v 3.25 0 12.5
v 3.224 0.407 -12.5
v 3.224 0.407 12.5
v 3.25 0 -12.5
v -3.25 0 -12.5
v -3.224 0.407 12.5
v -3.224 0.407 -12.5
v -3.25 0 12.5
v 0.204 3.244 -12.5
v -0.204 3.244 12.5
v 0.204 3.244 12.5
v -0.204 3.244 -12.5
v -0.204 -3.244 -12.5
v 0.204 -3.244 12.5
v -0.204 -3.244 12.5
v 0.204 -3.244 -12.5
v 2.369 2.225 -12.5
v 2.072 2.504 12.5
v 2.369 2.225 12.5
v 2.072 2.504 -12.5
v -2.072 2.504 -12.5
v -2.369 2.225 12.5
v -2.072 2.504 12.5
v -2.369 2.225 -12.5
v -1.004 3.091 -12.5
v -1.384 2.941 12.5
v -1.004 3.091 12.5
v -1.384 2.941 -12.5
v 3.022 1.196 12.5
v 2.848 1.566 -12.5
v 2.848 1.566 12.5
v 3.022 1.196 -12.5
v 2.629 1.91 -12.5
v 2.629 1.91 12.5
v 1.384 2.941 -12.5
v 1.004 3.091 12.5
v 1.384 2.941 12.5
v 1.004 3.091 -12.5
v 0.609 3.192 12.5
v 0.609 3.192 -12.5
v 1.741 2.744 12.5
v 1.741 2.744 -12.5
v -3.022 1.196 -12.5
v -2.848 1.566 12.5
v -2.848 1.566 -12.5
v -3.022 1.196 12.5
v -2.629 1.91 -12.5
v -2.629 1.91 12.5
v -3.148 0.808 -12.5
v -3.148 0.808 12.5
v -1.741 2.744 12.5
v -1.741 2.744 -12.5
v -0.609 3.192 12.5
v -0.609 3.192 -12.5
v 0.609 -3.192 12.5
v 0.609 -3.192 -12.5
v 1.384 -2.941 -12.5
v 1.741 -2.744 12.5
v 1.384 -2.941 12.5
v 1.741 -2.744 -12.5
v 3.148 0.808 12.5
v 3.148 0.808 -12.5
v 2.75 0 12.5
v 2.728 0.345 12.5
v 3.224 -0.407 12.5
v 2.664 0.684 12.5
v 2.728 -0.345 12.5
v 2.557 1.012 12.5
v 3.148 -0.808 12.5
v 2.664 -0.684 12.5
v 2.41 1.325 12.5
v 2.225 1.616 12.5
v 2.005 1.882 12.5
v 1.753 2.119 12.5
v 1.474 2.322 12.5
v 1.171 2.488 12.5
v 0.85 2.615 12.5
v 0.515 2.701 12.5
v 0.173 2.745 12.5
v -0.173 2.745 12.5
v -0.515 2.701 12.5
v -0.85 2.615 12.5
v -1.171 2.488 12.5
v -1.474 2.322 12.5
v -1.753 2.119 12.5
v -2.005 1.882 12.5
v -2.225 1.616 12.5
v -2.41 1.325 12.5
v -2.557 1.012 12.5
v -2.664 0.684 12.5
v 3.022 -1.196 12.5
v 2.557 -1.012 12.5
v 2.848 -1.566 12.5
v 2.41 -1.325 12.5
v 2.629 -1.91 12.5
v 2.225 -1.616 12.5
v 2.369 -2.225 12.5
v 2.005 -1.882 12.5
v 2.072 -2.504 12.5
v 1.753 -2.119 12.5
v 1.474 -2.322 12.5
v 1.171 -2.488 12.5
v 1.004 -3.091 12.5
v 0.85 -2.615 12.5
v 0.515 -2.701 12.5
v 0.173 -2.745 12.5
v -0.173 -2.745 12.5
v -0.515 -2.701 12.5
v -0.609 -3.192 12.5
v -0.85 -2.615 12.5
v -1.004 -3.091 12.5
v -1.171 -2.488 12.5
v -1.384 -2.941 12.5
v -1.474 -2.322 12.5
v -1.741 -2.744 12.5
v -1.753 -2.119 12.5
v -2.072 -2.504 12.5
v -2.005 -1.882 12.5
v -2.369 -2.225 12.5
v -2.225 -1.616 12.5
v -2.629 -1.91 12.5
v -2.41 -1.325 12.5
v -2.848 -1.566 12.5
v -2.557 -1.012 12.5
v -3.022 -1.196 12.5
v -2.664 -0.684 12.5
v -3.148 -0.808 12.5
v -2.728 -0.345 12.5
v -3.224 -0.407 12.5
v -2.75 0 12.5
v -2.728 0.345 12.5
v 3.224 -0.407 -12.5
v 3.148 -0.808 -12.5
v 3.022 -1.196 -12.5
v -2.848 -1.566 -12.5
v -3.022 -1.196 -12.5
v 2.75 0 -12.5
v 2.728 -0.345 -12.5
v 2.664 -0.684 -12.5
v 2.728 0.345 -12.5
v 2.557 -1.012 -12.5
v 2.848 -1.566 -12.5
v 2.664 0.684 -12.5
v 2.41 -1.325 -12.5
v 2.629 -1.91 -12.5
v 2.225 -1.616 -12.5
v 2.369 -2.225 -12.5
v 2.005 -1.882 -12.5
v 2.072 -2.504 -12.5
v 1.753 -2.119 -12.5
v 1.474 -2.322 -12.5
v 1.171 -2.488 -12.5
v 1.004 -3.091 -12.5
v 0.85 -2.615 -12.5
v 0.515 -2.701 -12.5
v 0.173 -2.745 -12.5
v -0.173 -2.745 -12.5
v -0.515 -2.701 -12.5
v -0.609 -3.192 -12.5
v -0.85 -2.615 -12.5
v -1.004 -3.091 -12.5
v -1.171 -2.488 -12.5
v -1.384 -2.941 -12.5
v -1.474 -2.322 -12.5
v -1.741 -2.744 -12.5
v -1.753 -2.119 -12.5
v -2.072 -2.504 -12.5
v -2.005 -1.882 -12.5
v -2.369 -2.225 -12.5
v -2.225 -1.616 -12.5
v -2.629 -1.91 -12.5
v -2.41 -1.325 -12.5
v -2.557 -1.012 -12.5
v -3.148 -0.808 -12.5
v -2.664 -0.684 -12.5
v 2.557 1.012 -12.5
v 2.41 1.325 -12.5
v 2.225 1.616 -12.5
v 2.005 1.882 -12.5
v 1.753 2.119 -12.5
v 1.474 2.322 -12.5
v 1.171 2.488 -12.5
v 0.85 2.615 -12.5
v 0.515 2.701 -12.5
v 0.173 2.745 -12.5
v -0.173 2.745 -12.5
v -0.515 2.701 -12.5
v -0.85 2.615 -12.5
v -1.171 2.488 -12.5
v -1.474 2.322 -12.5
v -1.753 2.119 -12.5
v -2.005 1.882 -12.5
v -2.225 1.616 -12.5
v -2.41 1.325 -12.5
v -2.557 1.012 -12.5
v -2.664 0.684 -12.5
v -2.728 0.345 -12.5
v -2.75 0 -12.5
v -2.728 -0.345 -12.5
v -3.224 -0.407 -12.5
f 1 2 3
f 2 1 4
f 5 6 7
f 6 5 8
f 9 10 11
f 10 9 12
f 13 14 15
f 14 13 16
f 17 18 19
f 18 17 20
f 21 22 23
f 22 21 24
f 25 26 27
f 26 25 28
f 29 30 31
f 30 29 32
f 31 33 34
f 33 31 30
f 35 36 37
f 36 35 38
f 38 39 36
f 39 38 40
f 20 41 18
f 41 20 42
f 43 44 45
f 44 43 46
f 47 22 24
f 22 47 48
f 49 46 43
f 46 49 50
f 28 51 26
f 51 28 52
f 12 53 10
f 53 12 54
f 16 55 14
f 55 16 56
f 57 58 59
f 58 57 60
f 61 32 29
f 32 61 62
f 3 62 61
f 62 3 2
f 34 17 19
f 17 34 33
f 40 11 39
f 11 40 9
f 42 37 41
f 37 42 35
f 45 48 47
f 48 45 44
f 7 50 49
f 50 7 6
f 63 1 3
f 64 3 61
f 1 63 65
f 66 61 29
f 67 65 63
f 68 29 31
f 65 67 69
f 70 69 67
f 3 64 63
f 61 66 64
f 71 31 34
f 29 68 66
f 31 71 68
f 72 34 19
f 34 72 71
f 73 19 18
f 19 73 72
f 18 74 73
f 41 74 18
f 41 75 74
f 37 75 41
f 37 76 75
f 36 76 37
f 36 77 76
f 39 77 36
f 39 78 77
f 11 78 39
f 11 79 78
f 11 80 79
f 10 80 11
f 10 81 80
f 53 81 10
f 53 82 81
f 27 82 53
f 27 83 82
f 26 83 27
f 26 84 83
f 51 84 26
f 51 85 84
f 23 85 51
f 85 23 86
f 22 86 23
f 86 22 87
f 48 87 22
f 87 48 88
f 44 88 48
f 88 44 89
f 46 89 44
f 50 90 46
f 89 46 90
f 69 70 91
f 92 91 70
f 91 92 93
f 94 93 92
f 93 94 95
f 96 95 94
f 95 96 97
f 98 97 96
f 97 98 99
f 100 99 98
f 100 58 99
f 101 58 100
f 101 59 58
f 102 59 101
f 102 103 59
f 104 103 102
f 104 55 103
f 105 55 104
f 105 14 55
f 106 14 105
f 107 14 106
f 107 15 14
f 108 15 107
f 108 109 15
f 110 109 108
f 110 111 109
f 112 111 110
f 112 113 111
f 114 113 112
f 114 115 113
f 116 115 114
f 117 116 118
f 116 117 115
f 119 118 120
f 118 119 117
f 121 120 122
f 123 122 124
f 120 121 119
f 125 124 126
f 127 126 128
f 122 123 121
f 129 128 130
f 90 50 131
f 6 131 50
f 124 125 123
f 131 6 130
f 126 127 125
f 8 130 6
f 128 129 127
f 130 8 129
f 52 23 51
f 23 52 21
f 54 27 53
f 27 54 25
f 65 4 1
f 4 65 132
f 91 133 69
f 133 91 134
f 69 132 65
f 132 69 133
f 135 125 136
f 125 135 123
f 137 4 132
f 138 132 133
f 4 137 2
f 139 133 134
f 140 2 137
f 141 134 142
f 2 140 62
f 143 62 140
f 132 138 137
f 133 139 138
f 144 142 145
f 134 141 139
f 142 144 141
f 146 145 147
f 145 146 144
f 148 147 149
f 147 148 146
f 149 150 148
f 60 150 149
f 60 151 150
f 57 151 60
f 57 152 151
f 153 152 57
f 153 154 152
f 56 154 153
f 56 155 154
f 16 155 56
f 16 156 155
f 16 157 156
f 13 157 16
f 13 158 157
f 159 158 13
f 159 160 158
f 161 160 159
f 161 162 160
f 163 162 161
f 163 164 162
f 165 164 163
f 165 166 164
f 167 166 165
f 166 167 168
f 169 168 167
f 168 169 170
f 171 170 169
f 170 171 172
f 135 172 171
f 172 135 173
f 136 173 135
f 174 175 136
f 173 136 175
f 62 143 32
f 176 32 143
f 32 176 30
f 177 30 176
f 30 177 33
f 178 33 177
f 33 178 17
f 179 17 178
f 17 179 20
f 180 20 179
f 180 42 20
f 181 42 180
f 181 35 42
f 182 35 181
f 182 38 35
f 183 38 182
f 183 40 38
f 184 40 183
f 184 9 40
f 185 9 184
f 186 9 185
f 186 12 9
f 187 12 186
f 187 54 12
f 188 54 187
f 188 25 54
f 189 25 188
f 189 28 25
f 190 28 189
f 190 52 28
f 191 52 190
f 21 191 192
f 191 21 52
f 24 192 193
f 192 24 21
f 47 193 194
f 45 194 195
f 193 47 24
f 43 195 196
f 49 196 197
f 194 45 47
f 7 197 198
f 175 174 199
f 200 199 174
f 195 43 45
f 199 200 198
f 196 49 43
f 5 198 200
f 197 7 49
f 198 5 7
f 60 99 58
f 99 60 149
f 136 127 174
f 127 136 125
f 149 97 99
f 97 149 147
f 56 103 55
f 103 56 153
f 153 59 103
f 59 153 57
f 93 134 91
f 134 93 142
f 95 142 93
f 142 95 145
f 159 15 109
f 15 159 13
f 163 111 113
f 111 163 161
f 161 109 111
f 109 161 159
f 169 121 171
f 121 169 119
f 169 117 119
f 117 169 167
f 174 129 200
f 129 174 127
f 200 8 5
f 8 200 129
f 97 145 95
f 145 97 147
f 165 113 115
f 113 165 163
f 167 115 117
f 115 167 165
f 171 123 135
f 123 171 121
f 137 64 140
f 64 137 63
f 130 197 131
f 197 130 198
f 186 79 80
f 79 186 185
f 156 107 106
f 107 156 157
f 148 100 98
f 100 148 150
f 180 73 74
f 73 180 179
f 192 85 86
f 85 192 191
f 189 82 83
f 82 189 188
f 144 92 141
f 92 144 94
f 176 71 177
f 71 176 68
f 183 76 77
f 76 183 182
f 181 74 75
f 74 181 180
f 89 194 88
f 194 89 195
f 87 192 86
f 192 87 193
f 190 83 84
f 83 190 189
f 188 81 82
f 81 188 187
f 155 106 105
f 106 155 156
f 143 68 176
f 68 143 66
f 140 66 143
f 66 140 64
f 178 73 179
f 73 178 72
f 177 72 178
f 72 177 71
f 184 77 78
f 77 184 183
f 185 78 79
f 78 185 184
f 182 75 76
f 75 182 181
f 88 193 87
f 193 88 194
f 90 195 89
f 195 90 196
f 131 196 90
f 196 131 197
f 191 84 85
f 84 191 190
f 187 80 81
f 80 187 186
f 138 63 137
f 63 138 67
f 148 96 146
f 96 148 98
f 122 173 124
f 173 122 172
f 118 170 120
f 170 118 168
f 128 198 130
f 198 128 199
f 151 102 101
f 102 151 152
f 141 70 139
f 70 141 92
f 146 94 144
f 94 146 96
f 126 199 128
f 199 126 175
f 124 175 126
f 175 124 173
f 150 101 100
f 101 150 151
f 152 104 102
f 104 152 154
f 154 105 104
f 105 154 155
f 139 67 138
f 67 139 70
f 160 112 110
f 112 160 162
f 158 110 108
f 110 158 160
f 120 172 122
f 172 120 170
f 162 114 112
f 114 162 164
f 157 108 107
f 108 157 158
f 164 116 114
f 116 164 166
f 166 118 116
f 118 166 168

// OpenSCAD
$fn = 50;


difference() {
	union() {
		translate(v = [0, 0, -12.5000000000]) {
			cylinder(h = 25, r = 3.2500000000);
		}
	}
	union() {
		translate(v = [0, 0, -100.0000000000]) {
			cylinder(h = 200, r = 2.7500000000);
		}
	}
}
